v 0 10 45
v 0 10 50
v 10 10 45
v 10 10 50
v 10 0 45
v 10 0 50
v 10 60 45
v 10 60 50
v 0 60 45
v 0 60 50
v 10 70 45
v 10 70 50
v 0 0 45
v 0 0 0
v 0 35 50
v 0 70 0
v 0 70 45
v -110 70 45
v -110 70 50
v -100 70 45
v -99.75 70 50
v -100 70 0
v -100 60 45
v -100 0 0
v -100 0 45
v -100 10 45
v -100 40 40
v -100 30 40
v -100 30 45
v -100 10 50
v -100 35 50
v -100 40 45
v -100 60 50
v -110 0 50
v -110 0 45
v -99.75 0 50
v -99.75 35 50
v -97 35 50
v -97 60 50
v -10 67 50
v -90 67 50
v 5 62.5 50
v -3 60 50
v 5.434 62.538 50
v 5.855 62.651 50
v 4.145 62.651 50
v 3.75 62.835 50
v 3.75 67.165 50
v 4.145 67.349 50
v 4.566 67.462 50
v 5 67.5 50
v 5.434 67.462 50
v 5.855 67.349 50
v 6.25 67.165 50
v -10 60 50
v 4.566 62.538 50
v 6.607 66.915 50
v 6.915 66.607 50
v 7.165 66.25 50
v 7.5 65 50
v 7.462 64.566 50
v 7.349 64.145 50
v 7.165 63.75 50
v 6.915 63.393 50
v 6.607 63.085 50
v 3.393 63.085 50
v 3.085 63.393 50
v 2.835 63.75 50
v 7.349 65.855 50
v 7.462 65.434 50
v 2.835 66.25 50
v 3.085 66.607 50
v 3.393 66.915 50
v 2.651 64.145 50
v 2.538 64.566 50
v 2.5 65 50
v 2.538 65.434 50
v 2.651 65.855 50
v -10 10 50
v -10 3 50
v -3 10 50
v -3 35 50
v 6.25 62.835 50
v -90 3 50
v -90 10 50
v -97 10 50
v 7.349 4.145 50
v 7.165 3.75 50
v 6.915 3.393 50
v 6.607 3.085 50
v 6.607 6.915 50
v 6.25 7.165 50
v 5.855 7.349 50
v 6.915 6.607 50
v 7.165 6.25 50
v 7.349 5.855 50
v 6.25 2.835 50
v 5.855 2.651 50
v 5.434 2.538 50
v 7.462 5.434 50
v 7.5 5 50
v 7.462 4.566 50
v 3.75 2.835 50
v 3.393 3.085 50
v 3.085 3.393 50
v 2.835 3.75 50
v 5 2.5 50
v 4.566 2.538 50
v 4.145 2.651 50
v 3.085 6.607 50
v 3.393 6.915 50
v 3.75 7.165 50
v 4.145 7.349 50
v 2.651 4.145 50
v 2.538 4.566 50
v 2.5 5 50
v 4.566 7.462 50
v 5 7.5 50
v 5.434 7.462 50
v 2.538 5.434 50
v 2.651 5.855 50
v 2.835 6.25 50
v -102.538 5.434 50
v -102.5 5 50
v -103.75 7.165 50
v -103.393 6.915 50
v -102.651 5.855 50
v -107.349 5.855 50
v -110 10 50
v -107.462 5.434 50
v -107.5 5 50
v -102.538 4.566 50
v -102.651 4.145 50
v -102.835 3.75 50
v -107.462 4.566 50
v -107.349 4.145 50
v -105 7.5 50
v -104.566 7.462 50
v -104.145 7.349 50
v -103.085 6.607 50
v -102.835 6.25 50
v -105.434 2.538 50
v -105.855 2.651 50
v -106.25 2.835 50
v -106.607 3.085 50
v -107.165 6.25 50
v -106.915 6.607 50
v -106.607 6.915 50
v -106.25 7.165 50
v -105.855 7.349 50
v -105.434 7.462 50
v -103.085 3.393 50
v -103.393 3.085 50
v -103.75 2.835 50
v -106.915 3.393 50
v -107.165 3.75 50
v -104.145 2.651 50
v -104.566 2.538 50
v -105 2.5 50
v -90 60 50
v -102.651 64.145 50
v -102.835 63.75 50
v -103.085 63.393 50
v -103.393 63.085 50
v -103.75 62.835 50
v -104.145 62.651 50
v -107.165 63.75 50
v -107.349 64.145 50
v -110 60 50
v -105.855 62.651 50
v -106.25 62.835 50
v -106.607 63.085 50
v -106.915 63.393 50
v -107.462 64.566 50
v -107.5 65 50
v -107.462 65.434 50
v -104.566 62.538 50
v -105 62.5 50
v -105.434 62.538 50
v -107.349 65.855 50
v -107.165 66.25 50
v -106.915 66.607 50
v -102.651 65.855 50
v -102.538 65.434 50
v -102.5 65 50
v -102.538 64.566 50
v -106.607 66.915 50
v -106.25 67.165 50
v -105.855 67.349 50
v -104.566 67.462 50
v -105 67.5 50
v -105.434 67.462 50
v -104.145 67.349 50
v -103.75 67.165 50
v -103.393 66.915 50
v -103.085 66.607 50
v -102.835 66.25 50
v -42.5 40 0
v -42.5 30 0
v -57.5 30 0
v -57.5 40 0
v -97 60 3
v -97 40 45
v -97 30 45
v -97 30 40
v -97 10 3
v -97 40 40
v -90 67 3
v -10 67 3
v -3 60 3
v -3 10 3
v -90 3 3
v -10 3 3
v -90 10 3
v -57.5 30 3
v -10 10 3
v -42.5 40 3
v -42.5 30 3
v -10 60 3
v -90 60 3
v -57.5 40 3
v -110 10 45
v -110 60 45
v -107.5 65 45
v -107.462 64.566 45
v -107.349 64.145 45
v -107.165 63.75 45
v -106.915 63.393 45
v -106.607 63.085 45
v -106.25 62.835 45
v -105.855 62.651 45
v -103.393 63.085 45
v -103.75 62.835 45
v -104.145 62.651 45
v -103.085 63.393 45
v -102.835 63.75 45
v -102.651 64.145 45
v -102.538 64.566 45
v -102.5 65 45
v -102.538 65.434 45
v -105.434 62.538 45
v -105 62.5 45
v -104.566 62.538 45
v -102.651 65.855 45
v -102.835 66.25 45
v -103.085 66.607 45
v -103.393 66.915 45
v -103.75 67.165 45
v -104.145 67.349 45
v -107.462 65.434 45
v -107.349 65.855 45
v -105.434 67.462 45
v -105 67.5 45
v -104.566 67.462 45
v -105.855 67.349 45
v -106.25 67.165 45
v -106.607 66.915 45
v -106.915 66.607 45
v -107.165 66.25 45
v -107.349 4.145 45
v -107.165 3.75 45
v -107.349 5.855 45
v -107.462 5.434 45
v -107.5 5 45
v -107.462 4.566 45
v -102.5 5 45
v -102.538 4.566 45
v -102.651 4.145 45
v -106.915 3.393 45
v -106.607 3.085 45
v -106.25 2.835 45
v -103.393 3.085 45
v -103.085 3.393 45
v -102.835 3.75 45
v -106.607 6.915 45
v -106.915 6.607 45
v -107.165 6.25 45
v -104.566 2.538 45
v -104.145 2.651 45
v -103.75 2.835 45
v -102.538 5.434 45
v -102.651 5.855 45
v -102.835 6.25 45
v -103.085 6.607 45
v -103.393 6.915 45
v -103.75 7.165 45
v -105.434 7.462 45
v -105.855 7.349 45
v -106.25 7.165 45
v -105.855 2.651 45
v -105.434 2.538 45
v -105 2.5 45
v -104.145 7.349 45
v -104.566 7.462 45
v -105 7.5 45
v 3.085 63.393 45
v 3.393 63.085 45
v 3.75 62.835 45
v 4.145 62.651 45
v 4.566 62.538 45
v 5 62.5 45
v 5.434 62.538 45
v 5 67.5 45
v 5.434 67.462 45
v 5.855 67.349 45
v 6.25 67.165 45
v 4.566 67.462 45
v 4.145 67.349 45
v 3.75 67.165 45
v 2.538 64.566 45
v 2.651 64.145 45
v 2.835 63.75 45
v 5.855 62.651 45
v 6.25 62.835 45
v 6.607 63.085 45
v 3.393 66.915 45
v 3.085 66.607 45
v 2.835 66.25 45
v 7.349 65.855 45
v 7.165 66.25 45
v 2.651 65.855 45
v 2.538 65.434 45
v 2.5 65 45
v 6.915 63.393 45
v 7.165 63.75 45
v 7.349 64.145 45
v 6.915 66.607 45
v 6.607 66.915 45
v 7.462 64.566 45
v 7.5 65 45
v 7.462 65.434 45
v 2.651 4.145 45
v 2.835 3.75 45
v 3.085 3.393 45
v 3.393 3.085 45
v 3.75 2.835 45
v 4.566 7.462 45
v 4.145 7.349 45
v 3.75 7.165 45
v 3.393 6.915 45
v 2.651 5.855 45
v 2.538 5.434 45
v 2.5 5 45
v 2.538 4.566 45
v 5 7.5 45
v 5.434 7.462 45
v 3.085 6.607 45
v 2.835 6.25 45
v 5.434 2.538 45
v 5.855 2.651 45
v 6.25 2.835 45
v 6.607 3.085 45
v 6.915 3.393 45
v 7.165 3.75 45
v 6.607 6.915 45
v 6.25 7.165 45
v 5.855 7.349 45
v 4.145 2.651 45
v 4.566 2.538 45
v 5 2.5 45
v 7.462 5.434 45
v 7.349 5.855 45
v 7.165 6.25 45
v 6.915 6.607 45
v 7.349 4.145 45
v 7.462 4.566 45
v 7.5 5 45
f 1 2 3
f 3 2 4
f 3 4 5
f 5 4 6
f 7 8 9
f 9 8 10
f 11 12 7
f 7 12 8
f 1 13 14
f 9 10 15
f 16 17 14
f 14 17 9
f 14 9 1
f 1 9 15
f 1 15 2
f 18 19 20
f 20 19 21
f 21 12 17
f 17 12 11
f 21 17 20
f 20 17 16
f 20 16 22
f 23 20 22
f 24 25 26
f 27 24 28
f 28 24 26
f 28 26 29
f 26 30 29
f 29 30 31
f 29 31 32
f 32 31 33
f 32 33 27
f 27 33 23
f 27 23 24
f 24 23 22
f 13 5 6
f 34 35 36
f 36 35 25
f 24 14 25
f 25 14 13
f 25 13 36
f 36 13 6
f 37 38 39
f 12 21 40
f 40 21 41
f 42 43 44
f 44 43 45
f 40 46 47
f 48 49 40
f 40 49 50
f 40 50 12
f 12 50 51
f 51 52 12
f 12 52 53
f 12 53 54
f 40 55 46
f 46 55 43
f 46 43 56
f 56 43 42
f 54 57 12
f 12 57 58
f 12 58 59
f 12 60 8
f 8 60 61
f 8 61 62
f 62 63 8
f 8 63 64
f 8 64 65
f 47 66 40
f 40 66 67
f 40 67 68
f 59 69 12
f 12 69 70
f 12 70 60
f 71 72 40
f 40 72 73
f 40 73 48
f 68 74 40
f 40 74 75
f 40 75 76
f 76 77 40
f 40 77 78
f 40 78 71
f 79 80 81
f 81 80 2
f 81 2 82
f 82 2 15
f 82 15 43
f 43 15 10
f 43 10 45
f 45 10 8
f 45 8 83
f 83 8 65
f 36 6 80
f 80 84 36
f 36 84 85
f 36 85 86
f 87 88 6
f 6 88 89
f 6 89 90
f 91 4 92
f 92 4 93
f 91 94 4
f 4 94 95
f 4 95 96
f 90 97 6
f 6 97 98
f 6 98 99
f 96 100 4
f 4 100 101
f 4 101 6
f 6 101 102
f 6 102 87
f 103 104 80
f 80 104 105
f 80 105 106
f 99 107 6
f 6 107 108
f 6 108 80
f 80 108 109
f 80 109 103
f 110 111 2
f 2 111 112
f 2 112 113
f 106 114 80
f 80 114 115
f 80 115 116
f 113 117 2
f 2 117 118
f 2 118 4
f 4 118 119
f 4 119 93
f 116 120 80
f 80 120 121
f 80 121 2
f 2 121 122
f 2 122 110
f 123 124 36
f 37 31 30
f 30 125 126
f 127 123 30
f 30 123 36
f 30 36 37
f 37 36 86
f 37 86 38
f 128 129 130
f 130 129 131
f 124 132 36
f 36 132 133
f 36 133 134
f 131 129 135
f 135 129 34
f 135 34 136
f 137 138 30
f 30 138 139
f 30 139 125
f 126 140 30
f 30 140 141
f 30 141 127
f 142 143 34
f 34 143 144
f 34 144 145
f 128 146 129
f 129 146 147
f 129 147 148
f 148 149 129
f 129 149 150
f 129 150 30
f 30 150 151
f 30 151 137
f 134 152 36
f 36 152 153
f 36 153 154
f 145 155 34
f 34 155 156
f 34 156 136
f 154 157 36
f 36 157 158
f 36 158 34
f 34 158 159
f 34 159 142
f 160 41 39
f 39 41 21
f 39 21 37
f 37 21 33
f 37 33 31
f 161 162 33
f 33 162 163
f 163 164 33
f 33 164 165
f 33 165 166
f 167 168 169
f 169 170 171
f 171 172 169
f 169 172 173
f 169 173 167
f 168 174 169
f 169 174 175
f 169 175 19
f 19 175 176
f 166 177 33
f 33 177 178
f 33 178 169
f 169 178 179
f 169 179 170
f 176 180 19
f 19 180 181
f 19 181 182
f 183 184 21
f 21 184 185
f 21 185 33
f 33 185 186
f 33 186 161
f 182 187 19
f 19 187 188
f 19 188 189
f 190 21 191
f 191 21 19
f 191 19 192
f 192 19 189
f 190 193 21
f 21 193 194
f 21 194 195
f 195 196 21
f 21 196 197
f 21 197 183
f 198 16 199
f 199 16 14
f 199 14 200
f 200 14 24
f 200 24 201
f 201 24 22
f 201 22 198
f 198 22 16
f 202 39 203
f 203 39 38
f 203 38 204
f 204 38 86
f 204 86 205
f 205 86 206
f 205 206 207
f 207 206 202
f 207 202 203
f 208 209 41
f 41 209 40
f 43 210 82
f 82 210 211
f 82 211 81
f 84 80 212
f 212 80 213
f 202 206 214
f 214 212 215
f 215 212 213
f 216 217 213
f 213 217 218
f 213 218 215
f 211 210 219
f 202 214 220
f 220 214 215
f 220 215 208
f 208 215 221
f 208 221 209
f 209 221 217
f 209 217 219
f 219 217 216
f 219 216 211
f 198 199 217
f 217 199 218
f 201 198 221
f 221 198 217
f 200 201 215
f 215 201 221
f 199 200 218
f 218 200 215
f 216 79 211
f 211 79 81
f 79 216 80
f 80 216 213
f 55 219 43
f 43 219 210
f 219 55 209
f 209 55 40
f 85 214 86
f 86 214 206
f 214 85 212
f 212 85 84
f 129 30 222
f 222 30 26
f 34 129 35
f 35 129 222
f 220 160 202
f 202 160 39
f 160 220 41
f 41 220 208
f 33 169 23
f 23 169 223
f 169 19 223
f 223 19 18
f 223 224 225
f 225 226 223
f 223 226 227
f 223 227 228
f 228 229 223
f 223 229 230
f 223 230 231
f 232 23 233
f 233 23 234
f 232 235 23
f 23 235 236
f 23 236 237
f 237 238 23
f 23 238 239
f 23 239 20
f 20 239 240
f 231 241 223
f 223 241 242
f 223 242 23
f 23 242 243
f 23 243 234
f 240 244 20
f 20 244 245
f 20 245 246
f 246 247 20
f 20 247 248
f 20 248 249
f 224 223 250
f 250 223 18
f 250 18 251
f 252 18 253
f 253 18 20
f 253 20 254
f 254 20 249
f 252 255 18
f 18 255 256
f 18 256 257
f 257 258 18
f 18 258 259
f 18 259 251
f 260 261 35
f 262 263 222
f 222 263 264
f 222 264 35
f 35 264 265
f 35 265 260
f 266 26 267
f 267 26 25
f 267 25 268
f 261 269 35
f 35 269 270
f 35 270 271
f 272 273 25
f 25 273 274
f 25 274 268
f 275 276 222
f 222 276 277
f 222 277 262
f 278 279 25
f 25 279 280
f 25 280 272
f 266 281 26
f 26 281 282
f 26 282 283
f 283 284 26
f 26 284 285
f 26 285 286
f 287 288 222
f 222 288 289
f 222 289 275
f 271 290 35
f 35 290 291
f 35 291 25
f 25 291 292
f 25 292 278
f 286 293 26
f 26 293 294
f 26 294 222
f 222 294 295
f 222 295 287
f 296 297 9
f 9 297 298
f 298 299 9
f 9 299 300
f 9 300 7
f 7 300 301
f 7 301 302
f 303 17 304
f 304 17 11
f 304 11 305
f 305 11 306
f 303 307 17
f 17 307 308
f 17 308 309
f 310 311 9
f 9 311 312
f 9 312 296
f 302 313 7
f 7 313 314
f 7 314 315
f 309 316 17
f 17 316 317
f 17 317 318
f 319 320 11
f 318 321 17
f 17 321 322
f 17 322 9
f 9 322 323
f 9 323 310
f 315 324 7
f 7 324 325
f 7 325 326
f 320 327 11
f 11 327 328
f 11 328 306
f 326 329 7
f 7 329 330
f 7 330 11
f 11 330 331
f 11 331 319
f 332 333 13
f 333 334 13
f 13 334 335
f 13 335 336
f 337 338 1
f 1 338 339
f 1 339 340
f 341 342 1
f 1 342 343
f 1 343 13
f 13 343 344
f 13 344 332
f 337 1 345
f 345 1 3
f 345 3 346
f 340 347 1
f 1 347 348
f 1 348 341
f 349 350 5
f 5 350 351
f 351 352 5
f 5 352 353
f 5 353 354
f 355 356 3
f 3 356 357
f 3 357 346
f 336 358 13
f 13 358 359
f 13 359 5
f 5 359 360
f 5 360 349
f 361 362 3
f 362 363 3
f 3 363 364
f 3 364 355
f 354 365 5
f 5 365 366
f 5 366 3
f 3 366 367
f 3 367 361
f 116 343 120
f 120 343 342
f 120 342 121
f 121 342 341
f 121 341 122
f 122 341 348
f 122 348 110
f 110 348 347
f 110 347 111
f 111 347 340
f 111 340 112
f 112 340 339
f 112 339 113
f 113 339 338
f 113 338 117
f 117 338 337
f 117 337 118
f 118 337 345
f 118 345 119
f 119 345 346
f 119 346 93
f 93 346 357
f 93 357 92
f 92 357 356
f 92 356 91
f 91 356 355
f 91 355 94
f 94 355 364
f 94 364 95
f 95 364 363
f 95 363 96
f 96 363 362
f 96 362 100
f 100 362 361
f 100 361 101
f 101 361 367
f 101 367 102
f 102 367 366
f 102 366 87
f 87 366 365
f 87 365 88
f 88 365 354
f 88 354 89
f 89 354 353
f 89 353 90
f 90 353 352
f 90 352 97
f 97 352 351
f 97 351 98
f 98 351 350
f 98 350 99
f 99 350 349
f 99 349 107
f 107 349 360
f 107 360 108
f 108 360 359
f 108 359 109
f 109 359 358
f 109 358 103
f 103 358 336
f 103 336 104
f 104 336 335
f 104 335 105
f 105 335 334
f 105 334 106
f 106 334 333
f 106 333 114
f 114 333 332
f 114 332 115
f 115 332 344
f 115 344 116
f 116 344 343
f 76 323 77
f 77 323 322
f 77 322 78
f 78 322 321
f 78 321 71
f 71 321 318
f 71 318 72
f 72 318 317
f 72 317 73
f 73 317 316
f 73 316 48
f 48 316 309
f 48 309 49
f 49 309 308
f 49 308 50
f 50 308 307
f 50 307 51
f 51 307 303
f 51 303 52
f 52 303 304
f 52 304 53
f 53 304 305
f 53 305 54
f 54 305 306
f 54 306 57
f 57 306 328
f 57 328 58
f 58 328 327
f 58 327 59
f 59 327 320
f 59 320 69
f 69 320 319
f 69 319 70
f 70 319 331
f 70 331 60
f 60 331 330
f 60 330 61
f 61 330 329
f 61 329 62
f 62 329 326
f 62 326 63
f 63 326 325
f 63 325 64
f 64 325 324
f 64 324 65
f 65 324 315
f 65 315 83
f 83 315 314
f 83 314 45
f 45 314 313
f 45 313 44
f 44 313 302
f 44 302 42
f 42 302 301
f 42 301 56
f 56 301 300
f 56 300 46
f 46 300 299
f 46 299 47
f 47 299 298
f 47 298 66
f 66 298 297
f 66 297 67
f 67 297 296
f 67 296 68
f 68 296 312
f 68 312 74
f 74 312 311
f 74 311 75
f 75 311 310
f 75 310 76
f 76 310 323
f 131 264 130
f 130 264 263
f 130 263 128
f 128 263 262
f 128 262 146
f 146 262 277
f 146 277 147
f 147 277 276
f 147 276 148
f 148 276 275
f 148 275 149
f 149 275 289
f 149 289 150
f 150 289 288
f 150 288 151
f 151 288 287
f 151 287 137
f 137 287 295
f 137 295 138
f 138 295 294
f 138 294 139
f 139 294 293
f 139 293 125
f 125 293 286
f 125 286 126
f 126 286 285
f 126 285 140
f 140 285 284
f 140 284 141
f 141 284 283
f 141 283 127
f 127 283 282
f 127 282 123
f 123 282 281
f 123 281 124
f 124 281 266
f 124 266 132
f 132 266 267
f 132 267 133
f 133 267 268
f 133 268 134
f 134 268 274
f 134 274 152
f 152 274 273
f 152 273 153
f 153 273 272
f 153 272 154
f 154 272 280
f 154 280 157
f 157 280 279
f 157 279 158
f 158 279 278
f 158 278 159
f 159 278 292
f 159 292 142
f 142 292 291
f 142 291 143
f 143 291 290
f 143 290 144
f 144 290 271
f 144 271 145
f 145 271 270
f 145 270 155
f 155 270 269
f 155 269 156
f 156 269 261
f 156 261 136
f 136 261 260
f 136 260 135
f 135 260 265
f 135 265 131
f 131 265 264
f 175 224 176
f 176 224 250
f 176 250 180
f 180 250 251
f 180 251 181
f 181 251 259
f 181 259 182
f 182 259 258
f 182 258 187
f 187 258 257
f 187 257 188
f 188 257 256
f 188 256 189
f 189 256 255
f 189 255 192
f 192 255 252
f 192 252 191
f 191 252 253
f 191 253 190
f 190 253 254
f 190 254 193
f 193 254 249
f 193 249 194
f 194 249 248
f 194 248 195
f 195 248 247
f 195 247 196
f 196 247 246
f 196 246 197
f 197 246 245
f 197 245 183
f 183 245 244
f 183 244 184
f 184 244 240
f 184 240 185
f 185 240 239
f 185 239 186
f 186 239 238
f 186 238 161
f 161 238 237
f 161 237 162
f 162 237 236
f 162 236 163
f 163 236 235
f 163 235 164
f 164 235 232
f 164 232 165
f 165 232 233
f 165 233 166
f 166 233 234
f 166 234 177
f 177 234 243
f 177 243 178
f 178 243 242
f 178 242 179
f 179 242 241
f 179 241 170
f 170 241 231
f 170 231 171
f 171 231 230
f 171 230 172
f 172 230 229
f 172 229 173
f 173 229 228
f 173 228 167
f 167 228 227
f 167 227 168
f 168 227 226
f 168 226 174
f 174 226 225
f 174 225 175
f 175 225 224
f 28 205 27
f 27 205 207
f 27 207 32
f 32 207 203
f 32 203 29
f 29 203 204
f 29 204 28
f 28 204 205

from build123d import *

# Parameters (mm, degrees)
ESQUISSE1_W             = 100
ESQUISSE1_H             = 70
BOSS_EXTRU_1_DEPTH      = 50
ESQUISSE2_W             = 94
ESQUISSE2_H             = 64
ENL_V_MAT_EXTRU_1_DEPTH = 47
ESQUISSE4_W             = 15
ESQUISSE4_H             = 10
ENL_V_MAT_EXTRU_3_DEPTH = 47
ESQUISSE5_W             = 20
ESQUISSE5_H             = 10
BOSS_EXTRU_2_DEPTH      = 50
ESQUISSE6_W             = 10
ESQUISSE6_H             = 10
ENL_V_MAT_EXTRU_4_DEPTH = 45
ESQUISSE7_R             = 2.5
ENL_V_MAT_EXTRU_5_DEPTH = 45
ESQUISSE3_W             = 5
ESQUISSE3_H             = 10
ENL_V_MAT_EXTRU_6_DEPTH = 45


with BuildPart() as part:
    # Esquisse1 → Boss.-Extru.1 (new body)
    with BuildSketch(Plane.XY):
        with Locations((-50, 35)):
            Rectangle(ESQUISSE1_W, ESQUISSE1_H)
    extrude(amount=BOSS_EXTRU_1_DEPTH)

    # Esquisse2 → Enlèv. mat.-Extru.1 (cut)
    with BuildSketch(Plane.XY.offset(50)):
        with Locations((-50, 35)):
            Rectangle(ESQUISSE2_W, ESQUISSE2_H)
    extrude(amount=-ENL_V_MAT_EXTRU_1_DEPTH, mode=Mode.SUBTRACT)

    # Esquisse4 → Enlèv. mat.-Extru.3 (cut)
    with BuildSketch(Plane(origin=(0, 0, 0), x_dir=(-1, 0, 0), z_dir=(0, 0, -1))):
        with Locations((50, 35)):
            Rectangle(ESQUISSE4_W, ESQUISSE4_H)
    extrude(amount=-ENL_V_MAT_EXTRU_3_DEPTH, mode=Mode.SUBTRACT)

    # Esquisse5 → Boss.-Extru.2 (add)
    with BuildSketch(Plane(origin=(0, 0, 0), x_dir=(-1, 0, 0), z_dir=(0, 0, -1))):
        with Locations((0, 5)):
            Rectangle(ESQUISSE5_W, ESQUISSE5_H)
        with Locations((0, 65)):
            Rectangle(ESQUISSE5_W, ESQUISSE5_H)
        with Locations((100, 5)):
            Rectangle(ESQUISSE5_W, ESQUISSE5_H)
        with Locations((100, 65)):
            Rectangle(ESQUISSE5_W, ESQUISSE5_H)
    extrude(amount=-BOSS_EXTRU_2_DEPTH)

    # Esquisse6 → Enlèv. mat.-Extru.4 (cut)
    with BuildSketch(Plane(origin=(0, 0, 0), x_dir=(-1, 0, 0), z_dir=(0, 0, -1))):
        with Locations((-5, 65)):
            Rectangle(ESQUISSE6_W, ESQUISSE6_H)
        with Locations((-5, 5)):
            Rectangle(ESQUISSE6_W, ESQUISSE6_H)
        with Locations((105, 65)):
            Rectangle(ESQUISSE6_W, ESQUISSE6_H)
        with Locations((105, 5)):
            Rectangle(ESQUISSE6_W, ESQUISSE6_H)
    extrude(amount=-ENL_V_MAT_EXTRU_4_DEPTH, mode=Mode.SUBTRACT)

    # Esquisse7 → Enlèv. mat.-Extru.5 (cut)
    with BuildSketch(Plane(origin=(0, 0, 45), x_dir=(-1, 0, 0), z_dir=(0, 0, -1))):
        with Locations((-5, 65)):
            Circle(ESQUISSE7_R)
        with Locations((-5, 5)):
            Circle(ESQUISSE7_R)
        with Locations((105, 5)):
            Circle(ESQUISSE7_R)
        with Locations((105, 65)):
            Circle(ESQUISSE7_R)
    extrude(amount=-ENL_V_MAT_EXTRU_5_DEPTH, mode=Mode.SUBTRACT)

    # Esquisse3 → Enlèv. mat.-Extru.6 (cut)
    with BuildSketch(Plane.ZY.offset(100)):
        with Locations((42.5, 35)):
            Rectangle(ESQUISSE3_W, ESQUISSE3_H)
    extrude(amount=-ENL_V_MAT_EXTRU_6_DEPTH, mode=Mode.SUBTRACT)


solid = part.part
